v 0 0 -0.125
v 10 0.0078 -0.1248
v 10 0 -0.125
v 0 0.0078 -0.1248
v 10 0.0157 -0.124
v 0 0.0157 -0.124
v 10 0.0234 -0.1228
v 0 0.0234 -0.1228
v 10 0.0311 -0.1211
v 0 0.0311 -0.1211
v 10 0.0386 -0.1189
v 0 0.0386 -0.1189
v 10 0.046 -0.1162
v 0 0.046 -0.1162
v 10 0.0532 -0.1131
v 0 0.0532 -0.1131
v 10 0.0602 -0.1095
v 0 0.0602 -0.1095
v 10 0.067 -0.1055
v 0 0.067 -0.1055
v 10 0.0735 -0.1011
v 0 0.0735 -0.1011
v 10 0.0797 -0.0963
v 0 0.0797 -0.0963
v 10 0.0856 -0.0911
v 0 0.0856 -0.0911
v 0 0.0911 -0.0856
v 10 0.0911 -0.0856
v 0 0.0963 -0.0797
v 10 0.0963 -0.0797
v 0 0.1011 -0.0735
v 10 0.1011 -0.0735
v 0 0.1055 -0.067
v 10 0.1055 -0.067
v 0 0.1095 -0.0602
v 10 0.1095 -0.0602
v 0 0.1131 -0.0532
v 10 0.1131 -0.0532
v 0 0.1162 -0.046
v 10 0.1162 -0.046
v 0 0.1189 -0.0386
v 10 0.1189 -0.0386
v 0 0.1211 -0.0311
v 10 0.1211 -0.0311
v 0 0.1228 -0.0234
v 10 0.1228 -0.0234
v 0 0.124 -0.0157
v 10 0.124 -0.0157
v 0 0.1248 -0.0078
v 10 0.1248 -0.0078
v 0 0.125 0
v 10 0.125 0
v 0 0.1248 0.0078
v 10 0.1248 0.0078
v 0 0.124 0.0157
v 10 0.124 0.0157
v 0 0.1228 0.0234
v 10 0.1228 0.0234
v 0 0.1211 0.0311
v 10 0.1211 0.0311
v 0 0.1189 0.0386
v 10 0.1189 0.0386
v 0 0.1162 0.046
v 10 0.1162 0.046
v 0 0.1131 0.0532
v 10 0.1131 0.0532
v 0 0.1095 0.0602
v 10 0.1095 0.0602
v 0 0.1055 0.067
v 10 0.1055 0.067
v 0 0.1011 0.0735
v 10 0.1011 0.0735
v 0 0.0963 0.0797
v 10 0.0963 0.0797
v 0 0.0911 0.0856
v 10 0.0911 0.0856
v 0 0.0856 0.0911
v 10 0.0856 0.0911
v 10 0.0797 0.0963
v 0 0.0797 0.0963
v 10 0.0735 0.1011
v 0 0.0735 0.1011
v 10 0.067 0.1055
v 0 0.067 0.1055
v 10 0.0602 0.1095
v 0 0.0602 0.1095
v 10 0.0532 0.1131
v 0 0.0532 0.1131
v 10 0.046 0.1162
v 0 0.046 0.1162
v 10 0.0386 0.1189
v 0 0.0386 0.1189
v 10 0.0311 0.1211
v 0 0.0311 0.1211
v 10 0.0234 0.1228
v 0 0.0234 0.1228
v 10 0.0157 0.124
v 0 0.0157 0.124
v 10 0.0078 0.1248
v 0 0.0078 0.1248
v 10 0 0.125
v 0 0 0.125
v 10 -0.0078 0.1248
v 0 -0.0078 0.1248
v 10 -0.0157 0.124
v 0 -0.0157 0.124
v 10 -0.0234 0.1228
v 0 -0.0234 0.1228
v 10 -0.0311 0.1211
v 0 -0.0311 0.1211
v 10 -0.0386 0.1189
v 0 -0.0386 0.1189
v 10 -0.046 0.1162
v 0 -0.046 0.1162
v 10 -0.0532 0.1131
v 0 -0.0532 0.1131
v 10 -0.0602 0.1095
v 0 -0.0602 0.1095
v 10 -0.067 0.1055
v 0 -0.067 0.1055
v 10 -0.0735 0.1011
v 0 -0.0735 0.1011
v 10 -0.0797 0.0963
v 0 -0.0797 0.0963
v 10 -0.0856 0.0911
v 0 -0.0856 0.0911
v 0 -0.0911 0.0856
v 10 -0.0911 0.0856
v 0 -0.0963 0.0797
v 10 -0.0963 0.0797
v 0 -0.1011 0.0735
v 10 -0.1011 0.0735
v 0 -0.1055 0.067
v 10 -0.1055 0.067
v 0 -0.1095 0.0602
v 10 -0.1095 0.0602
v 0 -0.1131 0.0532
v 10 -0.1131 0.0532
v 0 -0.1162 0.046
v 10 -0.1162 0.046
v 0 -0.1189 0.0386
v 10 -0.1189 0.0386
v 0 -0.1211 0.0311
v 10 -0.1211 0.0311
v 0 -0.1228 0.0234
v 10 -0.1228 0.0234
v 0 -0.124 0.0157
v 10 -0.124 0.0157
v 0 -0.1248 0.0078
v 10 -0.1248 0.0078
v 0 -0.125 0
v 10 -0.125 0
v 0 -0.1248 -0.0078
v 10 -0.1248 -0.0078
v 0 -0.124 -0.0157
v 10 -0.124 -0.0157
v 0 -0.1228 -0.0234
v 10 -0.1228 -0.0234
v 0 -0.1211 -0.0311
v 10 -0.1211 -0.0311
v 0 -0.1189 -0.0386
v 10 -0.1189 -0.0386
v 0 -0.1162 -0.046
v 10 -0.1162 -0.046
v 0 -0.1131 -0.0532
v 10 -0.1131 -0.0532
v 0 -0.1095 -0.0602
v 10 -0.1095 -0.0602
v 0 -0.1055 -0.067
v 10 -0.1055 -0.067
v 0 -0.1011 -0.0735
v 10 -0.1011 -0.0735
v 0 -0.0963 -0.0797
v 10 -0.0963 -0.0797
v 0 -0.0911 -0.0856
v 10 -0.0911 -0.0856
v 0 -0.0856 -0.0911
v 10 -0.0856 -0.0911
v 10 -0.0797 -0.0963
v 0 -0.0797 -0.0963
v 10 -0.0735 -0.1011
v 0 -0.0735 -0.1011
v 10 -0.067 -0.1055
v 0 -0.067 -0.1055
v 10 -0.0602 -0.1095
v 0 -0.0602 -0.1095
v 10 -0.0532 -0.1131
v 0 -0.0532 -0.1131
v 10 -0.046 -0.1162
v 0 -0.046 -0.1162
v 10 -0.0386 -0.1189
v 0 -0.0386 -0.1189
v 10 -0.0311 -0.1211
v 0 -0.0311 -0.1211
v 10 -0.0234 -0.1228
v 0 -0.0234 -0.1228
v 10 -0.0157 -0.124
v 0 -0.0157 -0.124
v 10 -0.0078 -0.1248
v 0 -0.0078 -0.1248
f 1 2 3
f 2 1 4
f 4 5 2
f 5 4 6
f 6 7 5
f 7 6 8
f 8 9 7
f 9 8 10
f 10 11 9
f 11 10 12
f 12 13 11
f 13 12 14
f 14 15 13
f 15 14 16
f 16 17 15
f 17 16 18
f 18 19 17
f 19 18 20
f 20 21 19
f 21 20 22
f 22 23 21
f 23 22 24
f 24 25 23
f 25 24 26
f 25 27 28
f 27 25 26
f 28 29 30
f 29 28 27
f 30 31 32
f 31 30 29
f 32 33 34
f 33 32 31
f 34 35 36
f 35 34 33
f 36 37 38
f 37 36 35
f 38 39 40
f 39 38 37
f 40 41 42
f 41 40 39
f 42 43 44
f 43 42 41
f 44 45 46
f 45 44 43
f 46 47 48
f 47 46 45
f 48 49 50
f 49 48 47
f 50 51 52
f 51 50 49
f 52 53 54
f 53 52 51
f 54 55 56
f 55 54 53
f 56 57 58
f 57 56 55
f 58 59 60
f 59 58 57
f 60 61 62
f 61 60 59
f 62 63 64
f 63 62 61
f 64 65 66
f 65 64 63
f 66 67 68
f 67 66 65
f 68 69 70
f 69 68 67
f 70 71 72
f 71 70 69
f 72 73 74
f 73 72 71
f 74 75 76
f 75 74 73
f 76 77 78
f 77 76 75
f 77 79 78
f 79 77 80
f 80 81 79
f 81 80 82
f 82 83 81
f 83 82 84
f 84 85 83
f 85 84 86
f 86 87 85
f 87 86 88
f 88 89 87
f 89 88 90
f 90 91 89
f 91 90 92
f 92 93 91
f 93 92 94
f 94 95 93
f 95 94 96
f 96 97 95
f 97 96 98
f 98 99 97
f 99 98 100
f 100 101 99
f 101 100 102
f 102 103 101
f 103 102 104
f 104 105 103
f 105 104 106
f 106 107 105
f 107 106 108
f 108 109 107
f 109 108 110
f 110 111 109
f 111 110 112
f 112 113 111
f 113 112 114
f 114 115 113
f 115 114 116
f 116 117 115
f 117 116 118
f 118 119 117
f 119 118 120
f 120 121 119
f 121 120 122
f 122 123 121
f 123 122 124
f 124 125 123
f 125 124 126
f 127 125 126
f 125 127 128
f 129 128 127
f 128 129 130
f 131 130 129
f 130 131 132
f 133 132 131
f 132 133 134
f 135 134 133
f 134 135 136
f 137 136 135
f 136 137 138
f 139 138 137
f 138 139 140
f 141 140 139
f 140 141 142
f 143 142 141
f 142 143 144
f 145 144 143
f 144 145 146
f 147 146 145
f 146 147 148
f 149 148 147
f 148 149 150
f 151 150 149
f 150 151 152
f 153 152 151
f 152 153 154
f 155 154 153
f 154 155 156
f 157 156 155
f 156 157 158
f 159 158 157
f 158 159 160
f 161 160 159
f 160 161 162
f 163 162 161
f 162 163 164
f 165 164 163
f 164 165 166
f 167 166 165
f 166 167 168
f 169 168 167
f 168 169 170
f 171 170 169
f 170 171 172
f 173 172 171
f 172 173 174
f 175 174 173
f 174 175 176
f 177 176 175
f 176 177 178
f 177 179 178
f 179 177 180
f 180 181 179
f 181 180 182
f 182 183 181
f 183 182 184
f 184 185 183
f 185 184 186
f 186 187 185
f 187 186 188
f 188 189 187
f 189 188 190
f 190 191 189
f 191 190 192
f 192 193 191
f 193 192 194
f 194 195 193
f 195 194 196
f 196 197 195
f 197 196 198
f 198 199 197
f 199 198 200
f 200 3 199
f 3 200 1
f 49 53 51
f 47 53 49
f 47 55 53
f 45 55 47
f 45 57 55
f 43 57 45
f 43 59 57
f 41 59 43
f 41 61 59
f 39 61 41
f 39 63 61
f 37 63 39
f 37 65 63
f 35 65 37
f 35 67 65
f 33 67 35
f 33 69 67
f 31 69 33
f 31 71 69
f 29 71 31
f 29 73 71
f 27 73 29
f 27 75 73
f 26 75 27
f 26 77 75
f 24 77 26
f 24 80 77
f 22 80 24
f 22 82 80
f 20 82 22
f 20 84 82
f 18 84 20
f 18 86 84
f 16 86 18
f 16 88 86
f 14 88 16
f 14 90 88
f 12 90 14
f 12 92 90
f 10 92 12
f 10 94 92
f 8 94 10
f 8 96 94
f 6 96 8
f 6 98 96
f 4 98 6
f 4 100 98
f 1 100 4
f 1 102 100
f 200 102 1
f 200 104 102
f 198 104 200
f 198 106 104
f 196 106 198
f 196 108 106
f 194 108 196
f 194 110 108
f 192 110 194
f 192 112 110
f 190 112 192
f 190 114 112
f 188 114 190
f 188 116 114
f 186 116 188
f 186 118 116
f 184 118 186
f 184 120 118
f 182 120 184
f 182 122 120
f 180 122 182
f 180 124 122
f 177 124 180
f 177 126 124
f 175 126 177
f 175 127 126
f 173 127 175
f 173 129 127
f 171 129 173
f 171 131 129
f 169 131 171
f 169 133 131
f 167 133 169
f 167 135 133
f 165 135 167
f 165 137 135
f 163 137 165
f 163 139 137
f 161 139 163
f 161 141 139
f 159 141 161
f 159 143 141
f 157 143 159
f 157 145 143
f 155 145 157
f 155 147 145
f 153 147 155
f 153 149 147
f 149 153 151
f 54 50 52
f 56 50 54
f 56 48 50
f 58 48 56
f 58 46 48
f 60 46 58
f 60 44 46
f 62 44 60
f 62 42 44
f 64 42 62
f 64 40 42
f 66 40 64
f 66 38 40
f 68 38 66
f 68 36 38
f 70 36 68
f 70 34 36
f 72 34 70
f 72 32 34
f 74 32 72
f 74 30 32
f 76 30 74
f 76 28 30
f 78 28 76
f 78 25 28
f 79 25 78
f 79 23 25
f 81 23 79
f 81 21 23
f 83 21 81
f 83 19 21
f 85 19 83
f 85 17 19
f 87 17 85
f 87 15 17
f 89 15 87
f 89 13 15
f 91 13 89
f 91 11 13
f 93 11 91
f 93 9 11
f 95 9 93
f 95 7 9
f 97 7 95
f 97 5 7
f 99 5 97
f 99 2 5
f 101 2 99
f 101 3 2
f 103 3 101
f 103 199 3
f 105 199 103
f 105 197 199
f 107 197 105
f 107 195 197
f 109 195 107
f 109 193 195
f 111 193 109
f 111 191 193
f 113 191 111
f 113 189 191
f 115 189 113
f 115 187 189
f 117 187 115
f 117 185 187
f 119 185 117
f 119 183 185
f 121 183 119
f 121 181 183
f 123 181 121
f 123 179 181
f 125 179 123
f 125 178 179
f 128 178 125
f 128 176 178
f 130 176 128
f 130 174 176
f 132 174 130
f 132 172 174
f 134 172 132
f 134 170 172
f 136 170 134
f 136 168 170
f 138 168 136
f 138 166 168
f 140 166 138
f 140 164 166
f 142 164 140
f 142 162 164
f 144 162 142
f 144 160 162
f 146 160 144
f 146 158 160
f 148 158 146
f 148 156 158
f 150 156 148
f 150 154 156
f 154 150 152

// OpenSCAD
// file: MMlib/colors.scad
// colors.scad
// Credit: David Powell, OpenSCAN Forum



//group ABS_<colorname>
//	discription  common 3d printer ABS filament colors
// actual colours may need some tweaking

ABS_Nature =[0.8,0.8,0.8,0.8];
ABS_White =[0.9,0.9,0.9,1];
ABS_Black =[0.1,0.1,0.1,1];
ABS_Red = [0.7,0,0,1];
ABS_Green = [0,0.7,0,1];
ABS_Blue = [0,0,0.7,1];
ABS_Orange =[0.8,0.4,0,1];
ABS_Purple =[0.7,0,0.7,1];
ABS_Brown =[0.6,0.2,0.2,1];
ABS_Glow_Blue =[0,0,.99,1];
ABS_Flurescence_Green =[0,1,0,1];
ABS_Flurescence_Yellow = [0.9,0.9,0,1];

//group PLA_<colorname>
//	discription  common 3d printer PLA filament colors
// actual colours may need some tweaking

PLA_Nature =[0.8,0.8,0.8,0.8];
PLA_White =[0.9,0.9,0.9,1];
PLA_Black =[0.1,0.1,0.1,1];
PLA_Red = [0.7,0,0,1];
PLA_Green = [0,0.7,0,1];
PLA_Blue = [0,0,0.7,1];
PLA_Orange =[0.8,0.4,0,1];
PLA_Purple =[0.7,0,0.7,1];
PLA_Brown =[0.6,0.2,0.2,1];
PLA_Glow_Blue =[0,0,.99,1];
PLA_Flurescence_Green =[0,1,0,1];
PLA_Flurescence_Yellow = [0.9,0.9,0,1];

//group ANODIZED_<colorname>
//	discription  common aluminium anodized colors
// these don't seem to follow normal color tables as the process
// produces a color change difference to the named color
// dew to base metal
// actual colours may need some tweaking

ANODIZED_Red =[0.7,0,0,1];
ANODIZED_Gold =[0.8,0.8,0.0,1];
ANODIZED_Black =[0.1,0.1,0.1,1];
ANODIZED_Blue =[0,0,0.7,1];
ANODIZED_Green =[0,0.5,0,1];
ANODIZED_Gray =[0.4,0.4,0.4,1];
ANODIZED_Dark_Blue =[0,0.2,0.6,1];
ANODIZED_Lime_Green =[0,0.8,0,1];
ANODIZED_Purple =[0.5,0,0.7,1];		//more blue than purple
ANODIZED_Light_Blue =[0.4,0.4,1,1];
ANODIZED_Pink =[0.7,0,0.7,1];		//more purlpe than pink
ANODIZED_Orange =[0.9,0.5,0,1];
ANODIZED_Scandia_Gold =[0.9,0.6,0.3,1];
ANODIZED_Copper =[0.7,0.5,0,1];		//more brown than copper
ANODIZED_Clear =[0.7,0.7,0.9,1];	//natural aluminium color
ANODIZED_Light_Bronze =[0.4,0.4,0.3,1]; //more silver than bronze
ANODIZED_Gold_Nickel =[0.8,0.8,0.6,1];
ANODIZED_Brush_Nickel =[0.8,0.8,0.7,1];

//group METAL_<typename>
//	discription common metal colors
// colors need tweaking

METAL_Aluminium = [0.7,0.7,0.8,1];
METAL_Brass = [0.88,0.78,0.5,1];
METAL_Copper = [0.9,0.6,0.5,1];
METAL_Steel = [0.9,0.9,0.8,1];
METAL_Stainless = [0.8,0.8,0.7,1];
METAL_Titanium = [0.7,0.7,0.6,1];
METAL_Bronze = [0.9,0.4,0.4,1];
METAL_Gold = [0.9,0.9,0.0,1];
METAL_Silver = [0.8,0.8,0.8,1];
METAL_Iron = [0.6,0.6,0.6,1];

// group WOOD_<typename>
//	discription common wood colors
// probabaly wrong

WOOD_Oak = [0.4,0.2,0.2,1];
WOOD_Birch = [0.8,0.8,0.4,1];
WOOD_Red = [0.7,0.3,0.3,1];
WOOD_pine = [0.8,0.8,0.4,1];
WOOD_Beach = [0.8,0.6,0.3,1];
WOOD_Spruce = [0.8,0.8,0.7,1];
WOOD_Balsa = [0.95,0.86,0.73];

// group GLASS_<color>
//	discription common glass colors
// needs tweaking

GLASS_Clear = [0.8,0.8,0.8,0.2];
GLASS_Red = [0.8,0,0,0.4];
GLASS_Green = [0,0.8,0,.4];
GLASS_Blue = [0,0,0.8,.4];
GLASS_Brown = [0.5,0.3,0.1,.4];

CONCRETE = [210/255, 209/255, 205/255];
// main file
//##################################################
// rubber_motor.scad - Math-Magik-LPP
// (c) 2021 by Roie R Black
//==================================================
$fn=100;
include <MMlib/colors.scad>

// alignment: centered along X axis

module rubber_motor() {
	rotate([0,90,0])
		color("Tan") cylinder(h=10, r=1/8);
}

//=================================================
rubber_motor();
